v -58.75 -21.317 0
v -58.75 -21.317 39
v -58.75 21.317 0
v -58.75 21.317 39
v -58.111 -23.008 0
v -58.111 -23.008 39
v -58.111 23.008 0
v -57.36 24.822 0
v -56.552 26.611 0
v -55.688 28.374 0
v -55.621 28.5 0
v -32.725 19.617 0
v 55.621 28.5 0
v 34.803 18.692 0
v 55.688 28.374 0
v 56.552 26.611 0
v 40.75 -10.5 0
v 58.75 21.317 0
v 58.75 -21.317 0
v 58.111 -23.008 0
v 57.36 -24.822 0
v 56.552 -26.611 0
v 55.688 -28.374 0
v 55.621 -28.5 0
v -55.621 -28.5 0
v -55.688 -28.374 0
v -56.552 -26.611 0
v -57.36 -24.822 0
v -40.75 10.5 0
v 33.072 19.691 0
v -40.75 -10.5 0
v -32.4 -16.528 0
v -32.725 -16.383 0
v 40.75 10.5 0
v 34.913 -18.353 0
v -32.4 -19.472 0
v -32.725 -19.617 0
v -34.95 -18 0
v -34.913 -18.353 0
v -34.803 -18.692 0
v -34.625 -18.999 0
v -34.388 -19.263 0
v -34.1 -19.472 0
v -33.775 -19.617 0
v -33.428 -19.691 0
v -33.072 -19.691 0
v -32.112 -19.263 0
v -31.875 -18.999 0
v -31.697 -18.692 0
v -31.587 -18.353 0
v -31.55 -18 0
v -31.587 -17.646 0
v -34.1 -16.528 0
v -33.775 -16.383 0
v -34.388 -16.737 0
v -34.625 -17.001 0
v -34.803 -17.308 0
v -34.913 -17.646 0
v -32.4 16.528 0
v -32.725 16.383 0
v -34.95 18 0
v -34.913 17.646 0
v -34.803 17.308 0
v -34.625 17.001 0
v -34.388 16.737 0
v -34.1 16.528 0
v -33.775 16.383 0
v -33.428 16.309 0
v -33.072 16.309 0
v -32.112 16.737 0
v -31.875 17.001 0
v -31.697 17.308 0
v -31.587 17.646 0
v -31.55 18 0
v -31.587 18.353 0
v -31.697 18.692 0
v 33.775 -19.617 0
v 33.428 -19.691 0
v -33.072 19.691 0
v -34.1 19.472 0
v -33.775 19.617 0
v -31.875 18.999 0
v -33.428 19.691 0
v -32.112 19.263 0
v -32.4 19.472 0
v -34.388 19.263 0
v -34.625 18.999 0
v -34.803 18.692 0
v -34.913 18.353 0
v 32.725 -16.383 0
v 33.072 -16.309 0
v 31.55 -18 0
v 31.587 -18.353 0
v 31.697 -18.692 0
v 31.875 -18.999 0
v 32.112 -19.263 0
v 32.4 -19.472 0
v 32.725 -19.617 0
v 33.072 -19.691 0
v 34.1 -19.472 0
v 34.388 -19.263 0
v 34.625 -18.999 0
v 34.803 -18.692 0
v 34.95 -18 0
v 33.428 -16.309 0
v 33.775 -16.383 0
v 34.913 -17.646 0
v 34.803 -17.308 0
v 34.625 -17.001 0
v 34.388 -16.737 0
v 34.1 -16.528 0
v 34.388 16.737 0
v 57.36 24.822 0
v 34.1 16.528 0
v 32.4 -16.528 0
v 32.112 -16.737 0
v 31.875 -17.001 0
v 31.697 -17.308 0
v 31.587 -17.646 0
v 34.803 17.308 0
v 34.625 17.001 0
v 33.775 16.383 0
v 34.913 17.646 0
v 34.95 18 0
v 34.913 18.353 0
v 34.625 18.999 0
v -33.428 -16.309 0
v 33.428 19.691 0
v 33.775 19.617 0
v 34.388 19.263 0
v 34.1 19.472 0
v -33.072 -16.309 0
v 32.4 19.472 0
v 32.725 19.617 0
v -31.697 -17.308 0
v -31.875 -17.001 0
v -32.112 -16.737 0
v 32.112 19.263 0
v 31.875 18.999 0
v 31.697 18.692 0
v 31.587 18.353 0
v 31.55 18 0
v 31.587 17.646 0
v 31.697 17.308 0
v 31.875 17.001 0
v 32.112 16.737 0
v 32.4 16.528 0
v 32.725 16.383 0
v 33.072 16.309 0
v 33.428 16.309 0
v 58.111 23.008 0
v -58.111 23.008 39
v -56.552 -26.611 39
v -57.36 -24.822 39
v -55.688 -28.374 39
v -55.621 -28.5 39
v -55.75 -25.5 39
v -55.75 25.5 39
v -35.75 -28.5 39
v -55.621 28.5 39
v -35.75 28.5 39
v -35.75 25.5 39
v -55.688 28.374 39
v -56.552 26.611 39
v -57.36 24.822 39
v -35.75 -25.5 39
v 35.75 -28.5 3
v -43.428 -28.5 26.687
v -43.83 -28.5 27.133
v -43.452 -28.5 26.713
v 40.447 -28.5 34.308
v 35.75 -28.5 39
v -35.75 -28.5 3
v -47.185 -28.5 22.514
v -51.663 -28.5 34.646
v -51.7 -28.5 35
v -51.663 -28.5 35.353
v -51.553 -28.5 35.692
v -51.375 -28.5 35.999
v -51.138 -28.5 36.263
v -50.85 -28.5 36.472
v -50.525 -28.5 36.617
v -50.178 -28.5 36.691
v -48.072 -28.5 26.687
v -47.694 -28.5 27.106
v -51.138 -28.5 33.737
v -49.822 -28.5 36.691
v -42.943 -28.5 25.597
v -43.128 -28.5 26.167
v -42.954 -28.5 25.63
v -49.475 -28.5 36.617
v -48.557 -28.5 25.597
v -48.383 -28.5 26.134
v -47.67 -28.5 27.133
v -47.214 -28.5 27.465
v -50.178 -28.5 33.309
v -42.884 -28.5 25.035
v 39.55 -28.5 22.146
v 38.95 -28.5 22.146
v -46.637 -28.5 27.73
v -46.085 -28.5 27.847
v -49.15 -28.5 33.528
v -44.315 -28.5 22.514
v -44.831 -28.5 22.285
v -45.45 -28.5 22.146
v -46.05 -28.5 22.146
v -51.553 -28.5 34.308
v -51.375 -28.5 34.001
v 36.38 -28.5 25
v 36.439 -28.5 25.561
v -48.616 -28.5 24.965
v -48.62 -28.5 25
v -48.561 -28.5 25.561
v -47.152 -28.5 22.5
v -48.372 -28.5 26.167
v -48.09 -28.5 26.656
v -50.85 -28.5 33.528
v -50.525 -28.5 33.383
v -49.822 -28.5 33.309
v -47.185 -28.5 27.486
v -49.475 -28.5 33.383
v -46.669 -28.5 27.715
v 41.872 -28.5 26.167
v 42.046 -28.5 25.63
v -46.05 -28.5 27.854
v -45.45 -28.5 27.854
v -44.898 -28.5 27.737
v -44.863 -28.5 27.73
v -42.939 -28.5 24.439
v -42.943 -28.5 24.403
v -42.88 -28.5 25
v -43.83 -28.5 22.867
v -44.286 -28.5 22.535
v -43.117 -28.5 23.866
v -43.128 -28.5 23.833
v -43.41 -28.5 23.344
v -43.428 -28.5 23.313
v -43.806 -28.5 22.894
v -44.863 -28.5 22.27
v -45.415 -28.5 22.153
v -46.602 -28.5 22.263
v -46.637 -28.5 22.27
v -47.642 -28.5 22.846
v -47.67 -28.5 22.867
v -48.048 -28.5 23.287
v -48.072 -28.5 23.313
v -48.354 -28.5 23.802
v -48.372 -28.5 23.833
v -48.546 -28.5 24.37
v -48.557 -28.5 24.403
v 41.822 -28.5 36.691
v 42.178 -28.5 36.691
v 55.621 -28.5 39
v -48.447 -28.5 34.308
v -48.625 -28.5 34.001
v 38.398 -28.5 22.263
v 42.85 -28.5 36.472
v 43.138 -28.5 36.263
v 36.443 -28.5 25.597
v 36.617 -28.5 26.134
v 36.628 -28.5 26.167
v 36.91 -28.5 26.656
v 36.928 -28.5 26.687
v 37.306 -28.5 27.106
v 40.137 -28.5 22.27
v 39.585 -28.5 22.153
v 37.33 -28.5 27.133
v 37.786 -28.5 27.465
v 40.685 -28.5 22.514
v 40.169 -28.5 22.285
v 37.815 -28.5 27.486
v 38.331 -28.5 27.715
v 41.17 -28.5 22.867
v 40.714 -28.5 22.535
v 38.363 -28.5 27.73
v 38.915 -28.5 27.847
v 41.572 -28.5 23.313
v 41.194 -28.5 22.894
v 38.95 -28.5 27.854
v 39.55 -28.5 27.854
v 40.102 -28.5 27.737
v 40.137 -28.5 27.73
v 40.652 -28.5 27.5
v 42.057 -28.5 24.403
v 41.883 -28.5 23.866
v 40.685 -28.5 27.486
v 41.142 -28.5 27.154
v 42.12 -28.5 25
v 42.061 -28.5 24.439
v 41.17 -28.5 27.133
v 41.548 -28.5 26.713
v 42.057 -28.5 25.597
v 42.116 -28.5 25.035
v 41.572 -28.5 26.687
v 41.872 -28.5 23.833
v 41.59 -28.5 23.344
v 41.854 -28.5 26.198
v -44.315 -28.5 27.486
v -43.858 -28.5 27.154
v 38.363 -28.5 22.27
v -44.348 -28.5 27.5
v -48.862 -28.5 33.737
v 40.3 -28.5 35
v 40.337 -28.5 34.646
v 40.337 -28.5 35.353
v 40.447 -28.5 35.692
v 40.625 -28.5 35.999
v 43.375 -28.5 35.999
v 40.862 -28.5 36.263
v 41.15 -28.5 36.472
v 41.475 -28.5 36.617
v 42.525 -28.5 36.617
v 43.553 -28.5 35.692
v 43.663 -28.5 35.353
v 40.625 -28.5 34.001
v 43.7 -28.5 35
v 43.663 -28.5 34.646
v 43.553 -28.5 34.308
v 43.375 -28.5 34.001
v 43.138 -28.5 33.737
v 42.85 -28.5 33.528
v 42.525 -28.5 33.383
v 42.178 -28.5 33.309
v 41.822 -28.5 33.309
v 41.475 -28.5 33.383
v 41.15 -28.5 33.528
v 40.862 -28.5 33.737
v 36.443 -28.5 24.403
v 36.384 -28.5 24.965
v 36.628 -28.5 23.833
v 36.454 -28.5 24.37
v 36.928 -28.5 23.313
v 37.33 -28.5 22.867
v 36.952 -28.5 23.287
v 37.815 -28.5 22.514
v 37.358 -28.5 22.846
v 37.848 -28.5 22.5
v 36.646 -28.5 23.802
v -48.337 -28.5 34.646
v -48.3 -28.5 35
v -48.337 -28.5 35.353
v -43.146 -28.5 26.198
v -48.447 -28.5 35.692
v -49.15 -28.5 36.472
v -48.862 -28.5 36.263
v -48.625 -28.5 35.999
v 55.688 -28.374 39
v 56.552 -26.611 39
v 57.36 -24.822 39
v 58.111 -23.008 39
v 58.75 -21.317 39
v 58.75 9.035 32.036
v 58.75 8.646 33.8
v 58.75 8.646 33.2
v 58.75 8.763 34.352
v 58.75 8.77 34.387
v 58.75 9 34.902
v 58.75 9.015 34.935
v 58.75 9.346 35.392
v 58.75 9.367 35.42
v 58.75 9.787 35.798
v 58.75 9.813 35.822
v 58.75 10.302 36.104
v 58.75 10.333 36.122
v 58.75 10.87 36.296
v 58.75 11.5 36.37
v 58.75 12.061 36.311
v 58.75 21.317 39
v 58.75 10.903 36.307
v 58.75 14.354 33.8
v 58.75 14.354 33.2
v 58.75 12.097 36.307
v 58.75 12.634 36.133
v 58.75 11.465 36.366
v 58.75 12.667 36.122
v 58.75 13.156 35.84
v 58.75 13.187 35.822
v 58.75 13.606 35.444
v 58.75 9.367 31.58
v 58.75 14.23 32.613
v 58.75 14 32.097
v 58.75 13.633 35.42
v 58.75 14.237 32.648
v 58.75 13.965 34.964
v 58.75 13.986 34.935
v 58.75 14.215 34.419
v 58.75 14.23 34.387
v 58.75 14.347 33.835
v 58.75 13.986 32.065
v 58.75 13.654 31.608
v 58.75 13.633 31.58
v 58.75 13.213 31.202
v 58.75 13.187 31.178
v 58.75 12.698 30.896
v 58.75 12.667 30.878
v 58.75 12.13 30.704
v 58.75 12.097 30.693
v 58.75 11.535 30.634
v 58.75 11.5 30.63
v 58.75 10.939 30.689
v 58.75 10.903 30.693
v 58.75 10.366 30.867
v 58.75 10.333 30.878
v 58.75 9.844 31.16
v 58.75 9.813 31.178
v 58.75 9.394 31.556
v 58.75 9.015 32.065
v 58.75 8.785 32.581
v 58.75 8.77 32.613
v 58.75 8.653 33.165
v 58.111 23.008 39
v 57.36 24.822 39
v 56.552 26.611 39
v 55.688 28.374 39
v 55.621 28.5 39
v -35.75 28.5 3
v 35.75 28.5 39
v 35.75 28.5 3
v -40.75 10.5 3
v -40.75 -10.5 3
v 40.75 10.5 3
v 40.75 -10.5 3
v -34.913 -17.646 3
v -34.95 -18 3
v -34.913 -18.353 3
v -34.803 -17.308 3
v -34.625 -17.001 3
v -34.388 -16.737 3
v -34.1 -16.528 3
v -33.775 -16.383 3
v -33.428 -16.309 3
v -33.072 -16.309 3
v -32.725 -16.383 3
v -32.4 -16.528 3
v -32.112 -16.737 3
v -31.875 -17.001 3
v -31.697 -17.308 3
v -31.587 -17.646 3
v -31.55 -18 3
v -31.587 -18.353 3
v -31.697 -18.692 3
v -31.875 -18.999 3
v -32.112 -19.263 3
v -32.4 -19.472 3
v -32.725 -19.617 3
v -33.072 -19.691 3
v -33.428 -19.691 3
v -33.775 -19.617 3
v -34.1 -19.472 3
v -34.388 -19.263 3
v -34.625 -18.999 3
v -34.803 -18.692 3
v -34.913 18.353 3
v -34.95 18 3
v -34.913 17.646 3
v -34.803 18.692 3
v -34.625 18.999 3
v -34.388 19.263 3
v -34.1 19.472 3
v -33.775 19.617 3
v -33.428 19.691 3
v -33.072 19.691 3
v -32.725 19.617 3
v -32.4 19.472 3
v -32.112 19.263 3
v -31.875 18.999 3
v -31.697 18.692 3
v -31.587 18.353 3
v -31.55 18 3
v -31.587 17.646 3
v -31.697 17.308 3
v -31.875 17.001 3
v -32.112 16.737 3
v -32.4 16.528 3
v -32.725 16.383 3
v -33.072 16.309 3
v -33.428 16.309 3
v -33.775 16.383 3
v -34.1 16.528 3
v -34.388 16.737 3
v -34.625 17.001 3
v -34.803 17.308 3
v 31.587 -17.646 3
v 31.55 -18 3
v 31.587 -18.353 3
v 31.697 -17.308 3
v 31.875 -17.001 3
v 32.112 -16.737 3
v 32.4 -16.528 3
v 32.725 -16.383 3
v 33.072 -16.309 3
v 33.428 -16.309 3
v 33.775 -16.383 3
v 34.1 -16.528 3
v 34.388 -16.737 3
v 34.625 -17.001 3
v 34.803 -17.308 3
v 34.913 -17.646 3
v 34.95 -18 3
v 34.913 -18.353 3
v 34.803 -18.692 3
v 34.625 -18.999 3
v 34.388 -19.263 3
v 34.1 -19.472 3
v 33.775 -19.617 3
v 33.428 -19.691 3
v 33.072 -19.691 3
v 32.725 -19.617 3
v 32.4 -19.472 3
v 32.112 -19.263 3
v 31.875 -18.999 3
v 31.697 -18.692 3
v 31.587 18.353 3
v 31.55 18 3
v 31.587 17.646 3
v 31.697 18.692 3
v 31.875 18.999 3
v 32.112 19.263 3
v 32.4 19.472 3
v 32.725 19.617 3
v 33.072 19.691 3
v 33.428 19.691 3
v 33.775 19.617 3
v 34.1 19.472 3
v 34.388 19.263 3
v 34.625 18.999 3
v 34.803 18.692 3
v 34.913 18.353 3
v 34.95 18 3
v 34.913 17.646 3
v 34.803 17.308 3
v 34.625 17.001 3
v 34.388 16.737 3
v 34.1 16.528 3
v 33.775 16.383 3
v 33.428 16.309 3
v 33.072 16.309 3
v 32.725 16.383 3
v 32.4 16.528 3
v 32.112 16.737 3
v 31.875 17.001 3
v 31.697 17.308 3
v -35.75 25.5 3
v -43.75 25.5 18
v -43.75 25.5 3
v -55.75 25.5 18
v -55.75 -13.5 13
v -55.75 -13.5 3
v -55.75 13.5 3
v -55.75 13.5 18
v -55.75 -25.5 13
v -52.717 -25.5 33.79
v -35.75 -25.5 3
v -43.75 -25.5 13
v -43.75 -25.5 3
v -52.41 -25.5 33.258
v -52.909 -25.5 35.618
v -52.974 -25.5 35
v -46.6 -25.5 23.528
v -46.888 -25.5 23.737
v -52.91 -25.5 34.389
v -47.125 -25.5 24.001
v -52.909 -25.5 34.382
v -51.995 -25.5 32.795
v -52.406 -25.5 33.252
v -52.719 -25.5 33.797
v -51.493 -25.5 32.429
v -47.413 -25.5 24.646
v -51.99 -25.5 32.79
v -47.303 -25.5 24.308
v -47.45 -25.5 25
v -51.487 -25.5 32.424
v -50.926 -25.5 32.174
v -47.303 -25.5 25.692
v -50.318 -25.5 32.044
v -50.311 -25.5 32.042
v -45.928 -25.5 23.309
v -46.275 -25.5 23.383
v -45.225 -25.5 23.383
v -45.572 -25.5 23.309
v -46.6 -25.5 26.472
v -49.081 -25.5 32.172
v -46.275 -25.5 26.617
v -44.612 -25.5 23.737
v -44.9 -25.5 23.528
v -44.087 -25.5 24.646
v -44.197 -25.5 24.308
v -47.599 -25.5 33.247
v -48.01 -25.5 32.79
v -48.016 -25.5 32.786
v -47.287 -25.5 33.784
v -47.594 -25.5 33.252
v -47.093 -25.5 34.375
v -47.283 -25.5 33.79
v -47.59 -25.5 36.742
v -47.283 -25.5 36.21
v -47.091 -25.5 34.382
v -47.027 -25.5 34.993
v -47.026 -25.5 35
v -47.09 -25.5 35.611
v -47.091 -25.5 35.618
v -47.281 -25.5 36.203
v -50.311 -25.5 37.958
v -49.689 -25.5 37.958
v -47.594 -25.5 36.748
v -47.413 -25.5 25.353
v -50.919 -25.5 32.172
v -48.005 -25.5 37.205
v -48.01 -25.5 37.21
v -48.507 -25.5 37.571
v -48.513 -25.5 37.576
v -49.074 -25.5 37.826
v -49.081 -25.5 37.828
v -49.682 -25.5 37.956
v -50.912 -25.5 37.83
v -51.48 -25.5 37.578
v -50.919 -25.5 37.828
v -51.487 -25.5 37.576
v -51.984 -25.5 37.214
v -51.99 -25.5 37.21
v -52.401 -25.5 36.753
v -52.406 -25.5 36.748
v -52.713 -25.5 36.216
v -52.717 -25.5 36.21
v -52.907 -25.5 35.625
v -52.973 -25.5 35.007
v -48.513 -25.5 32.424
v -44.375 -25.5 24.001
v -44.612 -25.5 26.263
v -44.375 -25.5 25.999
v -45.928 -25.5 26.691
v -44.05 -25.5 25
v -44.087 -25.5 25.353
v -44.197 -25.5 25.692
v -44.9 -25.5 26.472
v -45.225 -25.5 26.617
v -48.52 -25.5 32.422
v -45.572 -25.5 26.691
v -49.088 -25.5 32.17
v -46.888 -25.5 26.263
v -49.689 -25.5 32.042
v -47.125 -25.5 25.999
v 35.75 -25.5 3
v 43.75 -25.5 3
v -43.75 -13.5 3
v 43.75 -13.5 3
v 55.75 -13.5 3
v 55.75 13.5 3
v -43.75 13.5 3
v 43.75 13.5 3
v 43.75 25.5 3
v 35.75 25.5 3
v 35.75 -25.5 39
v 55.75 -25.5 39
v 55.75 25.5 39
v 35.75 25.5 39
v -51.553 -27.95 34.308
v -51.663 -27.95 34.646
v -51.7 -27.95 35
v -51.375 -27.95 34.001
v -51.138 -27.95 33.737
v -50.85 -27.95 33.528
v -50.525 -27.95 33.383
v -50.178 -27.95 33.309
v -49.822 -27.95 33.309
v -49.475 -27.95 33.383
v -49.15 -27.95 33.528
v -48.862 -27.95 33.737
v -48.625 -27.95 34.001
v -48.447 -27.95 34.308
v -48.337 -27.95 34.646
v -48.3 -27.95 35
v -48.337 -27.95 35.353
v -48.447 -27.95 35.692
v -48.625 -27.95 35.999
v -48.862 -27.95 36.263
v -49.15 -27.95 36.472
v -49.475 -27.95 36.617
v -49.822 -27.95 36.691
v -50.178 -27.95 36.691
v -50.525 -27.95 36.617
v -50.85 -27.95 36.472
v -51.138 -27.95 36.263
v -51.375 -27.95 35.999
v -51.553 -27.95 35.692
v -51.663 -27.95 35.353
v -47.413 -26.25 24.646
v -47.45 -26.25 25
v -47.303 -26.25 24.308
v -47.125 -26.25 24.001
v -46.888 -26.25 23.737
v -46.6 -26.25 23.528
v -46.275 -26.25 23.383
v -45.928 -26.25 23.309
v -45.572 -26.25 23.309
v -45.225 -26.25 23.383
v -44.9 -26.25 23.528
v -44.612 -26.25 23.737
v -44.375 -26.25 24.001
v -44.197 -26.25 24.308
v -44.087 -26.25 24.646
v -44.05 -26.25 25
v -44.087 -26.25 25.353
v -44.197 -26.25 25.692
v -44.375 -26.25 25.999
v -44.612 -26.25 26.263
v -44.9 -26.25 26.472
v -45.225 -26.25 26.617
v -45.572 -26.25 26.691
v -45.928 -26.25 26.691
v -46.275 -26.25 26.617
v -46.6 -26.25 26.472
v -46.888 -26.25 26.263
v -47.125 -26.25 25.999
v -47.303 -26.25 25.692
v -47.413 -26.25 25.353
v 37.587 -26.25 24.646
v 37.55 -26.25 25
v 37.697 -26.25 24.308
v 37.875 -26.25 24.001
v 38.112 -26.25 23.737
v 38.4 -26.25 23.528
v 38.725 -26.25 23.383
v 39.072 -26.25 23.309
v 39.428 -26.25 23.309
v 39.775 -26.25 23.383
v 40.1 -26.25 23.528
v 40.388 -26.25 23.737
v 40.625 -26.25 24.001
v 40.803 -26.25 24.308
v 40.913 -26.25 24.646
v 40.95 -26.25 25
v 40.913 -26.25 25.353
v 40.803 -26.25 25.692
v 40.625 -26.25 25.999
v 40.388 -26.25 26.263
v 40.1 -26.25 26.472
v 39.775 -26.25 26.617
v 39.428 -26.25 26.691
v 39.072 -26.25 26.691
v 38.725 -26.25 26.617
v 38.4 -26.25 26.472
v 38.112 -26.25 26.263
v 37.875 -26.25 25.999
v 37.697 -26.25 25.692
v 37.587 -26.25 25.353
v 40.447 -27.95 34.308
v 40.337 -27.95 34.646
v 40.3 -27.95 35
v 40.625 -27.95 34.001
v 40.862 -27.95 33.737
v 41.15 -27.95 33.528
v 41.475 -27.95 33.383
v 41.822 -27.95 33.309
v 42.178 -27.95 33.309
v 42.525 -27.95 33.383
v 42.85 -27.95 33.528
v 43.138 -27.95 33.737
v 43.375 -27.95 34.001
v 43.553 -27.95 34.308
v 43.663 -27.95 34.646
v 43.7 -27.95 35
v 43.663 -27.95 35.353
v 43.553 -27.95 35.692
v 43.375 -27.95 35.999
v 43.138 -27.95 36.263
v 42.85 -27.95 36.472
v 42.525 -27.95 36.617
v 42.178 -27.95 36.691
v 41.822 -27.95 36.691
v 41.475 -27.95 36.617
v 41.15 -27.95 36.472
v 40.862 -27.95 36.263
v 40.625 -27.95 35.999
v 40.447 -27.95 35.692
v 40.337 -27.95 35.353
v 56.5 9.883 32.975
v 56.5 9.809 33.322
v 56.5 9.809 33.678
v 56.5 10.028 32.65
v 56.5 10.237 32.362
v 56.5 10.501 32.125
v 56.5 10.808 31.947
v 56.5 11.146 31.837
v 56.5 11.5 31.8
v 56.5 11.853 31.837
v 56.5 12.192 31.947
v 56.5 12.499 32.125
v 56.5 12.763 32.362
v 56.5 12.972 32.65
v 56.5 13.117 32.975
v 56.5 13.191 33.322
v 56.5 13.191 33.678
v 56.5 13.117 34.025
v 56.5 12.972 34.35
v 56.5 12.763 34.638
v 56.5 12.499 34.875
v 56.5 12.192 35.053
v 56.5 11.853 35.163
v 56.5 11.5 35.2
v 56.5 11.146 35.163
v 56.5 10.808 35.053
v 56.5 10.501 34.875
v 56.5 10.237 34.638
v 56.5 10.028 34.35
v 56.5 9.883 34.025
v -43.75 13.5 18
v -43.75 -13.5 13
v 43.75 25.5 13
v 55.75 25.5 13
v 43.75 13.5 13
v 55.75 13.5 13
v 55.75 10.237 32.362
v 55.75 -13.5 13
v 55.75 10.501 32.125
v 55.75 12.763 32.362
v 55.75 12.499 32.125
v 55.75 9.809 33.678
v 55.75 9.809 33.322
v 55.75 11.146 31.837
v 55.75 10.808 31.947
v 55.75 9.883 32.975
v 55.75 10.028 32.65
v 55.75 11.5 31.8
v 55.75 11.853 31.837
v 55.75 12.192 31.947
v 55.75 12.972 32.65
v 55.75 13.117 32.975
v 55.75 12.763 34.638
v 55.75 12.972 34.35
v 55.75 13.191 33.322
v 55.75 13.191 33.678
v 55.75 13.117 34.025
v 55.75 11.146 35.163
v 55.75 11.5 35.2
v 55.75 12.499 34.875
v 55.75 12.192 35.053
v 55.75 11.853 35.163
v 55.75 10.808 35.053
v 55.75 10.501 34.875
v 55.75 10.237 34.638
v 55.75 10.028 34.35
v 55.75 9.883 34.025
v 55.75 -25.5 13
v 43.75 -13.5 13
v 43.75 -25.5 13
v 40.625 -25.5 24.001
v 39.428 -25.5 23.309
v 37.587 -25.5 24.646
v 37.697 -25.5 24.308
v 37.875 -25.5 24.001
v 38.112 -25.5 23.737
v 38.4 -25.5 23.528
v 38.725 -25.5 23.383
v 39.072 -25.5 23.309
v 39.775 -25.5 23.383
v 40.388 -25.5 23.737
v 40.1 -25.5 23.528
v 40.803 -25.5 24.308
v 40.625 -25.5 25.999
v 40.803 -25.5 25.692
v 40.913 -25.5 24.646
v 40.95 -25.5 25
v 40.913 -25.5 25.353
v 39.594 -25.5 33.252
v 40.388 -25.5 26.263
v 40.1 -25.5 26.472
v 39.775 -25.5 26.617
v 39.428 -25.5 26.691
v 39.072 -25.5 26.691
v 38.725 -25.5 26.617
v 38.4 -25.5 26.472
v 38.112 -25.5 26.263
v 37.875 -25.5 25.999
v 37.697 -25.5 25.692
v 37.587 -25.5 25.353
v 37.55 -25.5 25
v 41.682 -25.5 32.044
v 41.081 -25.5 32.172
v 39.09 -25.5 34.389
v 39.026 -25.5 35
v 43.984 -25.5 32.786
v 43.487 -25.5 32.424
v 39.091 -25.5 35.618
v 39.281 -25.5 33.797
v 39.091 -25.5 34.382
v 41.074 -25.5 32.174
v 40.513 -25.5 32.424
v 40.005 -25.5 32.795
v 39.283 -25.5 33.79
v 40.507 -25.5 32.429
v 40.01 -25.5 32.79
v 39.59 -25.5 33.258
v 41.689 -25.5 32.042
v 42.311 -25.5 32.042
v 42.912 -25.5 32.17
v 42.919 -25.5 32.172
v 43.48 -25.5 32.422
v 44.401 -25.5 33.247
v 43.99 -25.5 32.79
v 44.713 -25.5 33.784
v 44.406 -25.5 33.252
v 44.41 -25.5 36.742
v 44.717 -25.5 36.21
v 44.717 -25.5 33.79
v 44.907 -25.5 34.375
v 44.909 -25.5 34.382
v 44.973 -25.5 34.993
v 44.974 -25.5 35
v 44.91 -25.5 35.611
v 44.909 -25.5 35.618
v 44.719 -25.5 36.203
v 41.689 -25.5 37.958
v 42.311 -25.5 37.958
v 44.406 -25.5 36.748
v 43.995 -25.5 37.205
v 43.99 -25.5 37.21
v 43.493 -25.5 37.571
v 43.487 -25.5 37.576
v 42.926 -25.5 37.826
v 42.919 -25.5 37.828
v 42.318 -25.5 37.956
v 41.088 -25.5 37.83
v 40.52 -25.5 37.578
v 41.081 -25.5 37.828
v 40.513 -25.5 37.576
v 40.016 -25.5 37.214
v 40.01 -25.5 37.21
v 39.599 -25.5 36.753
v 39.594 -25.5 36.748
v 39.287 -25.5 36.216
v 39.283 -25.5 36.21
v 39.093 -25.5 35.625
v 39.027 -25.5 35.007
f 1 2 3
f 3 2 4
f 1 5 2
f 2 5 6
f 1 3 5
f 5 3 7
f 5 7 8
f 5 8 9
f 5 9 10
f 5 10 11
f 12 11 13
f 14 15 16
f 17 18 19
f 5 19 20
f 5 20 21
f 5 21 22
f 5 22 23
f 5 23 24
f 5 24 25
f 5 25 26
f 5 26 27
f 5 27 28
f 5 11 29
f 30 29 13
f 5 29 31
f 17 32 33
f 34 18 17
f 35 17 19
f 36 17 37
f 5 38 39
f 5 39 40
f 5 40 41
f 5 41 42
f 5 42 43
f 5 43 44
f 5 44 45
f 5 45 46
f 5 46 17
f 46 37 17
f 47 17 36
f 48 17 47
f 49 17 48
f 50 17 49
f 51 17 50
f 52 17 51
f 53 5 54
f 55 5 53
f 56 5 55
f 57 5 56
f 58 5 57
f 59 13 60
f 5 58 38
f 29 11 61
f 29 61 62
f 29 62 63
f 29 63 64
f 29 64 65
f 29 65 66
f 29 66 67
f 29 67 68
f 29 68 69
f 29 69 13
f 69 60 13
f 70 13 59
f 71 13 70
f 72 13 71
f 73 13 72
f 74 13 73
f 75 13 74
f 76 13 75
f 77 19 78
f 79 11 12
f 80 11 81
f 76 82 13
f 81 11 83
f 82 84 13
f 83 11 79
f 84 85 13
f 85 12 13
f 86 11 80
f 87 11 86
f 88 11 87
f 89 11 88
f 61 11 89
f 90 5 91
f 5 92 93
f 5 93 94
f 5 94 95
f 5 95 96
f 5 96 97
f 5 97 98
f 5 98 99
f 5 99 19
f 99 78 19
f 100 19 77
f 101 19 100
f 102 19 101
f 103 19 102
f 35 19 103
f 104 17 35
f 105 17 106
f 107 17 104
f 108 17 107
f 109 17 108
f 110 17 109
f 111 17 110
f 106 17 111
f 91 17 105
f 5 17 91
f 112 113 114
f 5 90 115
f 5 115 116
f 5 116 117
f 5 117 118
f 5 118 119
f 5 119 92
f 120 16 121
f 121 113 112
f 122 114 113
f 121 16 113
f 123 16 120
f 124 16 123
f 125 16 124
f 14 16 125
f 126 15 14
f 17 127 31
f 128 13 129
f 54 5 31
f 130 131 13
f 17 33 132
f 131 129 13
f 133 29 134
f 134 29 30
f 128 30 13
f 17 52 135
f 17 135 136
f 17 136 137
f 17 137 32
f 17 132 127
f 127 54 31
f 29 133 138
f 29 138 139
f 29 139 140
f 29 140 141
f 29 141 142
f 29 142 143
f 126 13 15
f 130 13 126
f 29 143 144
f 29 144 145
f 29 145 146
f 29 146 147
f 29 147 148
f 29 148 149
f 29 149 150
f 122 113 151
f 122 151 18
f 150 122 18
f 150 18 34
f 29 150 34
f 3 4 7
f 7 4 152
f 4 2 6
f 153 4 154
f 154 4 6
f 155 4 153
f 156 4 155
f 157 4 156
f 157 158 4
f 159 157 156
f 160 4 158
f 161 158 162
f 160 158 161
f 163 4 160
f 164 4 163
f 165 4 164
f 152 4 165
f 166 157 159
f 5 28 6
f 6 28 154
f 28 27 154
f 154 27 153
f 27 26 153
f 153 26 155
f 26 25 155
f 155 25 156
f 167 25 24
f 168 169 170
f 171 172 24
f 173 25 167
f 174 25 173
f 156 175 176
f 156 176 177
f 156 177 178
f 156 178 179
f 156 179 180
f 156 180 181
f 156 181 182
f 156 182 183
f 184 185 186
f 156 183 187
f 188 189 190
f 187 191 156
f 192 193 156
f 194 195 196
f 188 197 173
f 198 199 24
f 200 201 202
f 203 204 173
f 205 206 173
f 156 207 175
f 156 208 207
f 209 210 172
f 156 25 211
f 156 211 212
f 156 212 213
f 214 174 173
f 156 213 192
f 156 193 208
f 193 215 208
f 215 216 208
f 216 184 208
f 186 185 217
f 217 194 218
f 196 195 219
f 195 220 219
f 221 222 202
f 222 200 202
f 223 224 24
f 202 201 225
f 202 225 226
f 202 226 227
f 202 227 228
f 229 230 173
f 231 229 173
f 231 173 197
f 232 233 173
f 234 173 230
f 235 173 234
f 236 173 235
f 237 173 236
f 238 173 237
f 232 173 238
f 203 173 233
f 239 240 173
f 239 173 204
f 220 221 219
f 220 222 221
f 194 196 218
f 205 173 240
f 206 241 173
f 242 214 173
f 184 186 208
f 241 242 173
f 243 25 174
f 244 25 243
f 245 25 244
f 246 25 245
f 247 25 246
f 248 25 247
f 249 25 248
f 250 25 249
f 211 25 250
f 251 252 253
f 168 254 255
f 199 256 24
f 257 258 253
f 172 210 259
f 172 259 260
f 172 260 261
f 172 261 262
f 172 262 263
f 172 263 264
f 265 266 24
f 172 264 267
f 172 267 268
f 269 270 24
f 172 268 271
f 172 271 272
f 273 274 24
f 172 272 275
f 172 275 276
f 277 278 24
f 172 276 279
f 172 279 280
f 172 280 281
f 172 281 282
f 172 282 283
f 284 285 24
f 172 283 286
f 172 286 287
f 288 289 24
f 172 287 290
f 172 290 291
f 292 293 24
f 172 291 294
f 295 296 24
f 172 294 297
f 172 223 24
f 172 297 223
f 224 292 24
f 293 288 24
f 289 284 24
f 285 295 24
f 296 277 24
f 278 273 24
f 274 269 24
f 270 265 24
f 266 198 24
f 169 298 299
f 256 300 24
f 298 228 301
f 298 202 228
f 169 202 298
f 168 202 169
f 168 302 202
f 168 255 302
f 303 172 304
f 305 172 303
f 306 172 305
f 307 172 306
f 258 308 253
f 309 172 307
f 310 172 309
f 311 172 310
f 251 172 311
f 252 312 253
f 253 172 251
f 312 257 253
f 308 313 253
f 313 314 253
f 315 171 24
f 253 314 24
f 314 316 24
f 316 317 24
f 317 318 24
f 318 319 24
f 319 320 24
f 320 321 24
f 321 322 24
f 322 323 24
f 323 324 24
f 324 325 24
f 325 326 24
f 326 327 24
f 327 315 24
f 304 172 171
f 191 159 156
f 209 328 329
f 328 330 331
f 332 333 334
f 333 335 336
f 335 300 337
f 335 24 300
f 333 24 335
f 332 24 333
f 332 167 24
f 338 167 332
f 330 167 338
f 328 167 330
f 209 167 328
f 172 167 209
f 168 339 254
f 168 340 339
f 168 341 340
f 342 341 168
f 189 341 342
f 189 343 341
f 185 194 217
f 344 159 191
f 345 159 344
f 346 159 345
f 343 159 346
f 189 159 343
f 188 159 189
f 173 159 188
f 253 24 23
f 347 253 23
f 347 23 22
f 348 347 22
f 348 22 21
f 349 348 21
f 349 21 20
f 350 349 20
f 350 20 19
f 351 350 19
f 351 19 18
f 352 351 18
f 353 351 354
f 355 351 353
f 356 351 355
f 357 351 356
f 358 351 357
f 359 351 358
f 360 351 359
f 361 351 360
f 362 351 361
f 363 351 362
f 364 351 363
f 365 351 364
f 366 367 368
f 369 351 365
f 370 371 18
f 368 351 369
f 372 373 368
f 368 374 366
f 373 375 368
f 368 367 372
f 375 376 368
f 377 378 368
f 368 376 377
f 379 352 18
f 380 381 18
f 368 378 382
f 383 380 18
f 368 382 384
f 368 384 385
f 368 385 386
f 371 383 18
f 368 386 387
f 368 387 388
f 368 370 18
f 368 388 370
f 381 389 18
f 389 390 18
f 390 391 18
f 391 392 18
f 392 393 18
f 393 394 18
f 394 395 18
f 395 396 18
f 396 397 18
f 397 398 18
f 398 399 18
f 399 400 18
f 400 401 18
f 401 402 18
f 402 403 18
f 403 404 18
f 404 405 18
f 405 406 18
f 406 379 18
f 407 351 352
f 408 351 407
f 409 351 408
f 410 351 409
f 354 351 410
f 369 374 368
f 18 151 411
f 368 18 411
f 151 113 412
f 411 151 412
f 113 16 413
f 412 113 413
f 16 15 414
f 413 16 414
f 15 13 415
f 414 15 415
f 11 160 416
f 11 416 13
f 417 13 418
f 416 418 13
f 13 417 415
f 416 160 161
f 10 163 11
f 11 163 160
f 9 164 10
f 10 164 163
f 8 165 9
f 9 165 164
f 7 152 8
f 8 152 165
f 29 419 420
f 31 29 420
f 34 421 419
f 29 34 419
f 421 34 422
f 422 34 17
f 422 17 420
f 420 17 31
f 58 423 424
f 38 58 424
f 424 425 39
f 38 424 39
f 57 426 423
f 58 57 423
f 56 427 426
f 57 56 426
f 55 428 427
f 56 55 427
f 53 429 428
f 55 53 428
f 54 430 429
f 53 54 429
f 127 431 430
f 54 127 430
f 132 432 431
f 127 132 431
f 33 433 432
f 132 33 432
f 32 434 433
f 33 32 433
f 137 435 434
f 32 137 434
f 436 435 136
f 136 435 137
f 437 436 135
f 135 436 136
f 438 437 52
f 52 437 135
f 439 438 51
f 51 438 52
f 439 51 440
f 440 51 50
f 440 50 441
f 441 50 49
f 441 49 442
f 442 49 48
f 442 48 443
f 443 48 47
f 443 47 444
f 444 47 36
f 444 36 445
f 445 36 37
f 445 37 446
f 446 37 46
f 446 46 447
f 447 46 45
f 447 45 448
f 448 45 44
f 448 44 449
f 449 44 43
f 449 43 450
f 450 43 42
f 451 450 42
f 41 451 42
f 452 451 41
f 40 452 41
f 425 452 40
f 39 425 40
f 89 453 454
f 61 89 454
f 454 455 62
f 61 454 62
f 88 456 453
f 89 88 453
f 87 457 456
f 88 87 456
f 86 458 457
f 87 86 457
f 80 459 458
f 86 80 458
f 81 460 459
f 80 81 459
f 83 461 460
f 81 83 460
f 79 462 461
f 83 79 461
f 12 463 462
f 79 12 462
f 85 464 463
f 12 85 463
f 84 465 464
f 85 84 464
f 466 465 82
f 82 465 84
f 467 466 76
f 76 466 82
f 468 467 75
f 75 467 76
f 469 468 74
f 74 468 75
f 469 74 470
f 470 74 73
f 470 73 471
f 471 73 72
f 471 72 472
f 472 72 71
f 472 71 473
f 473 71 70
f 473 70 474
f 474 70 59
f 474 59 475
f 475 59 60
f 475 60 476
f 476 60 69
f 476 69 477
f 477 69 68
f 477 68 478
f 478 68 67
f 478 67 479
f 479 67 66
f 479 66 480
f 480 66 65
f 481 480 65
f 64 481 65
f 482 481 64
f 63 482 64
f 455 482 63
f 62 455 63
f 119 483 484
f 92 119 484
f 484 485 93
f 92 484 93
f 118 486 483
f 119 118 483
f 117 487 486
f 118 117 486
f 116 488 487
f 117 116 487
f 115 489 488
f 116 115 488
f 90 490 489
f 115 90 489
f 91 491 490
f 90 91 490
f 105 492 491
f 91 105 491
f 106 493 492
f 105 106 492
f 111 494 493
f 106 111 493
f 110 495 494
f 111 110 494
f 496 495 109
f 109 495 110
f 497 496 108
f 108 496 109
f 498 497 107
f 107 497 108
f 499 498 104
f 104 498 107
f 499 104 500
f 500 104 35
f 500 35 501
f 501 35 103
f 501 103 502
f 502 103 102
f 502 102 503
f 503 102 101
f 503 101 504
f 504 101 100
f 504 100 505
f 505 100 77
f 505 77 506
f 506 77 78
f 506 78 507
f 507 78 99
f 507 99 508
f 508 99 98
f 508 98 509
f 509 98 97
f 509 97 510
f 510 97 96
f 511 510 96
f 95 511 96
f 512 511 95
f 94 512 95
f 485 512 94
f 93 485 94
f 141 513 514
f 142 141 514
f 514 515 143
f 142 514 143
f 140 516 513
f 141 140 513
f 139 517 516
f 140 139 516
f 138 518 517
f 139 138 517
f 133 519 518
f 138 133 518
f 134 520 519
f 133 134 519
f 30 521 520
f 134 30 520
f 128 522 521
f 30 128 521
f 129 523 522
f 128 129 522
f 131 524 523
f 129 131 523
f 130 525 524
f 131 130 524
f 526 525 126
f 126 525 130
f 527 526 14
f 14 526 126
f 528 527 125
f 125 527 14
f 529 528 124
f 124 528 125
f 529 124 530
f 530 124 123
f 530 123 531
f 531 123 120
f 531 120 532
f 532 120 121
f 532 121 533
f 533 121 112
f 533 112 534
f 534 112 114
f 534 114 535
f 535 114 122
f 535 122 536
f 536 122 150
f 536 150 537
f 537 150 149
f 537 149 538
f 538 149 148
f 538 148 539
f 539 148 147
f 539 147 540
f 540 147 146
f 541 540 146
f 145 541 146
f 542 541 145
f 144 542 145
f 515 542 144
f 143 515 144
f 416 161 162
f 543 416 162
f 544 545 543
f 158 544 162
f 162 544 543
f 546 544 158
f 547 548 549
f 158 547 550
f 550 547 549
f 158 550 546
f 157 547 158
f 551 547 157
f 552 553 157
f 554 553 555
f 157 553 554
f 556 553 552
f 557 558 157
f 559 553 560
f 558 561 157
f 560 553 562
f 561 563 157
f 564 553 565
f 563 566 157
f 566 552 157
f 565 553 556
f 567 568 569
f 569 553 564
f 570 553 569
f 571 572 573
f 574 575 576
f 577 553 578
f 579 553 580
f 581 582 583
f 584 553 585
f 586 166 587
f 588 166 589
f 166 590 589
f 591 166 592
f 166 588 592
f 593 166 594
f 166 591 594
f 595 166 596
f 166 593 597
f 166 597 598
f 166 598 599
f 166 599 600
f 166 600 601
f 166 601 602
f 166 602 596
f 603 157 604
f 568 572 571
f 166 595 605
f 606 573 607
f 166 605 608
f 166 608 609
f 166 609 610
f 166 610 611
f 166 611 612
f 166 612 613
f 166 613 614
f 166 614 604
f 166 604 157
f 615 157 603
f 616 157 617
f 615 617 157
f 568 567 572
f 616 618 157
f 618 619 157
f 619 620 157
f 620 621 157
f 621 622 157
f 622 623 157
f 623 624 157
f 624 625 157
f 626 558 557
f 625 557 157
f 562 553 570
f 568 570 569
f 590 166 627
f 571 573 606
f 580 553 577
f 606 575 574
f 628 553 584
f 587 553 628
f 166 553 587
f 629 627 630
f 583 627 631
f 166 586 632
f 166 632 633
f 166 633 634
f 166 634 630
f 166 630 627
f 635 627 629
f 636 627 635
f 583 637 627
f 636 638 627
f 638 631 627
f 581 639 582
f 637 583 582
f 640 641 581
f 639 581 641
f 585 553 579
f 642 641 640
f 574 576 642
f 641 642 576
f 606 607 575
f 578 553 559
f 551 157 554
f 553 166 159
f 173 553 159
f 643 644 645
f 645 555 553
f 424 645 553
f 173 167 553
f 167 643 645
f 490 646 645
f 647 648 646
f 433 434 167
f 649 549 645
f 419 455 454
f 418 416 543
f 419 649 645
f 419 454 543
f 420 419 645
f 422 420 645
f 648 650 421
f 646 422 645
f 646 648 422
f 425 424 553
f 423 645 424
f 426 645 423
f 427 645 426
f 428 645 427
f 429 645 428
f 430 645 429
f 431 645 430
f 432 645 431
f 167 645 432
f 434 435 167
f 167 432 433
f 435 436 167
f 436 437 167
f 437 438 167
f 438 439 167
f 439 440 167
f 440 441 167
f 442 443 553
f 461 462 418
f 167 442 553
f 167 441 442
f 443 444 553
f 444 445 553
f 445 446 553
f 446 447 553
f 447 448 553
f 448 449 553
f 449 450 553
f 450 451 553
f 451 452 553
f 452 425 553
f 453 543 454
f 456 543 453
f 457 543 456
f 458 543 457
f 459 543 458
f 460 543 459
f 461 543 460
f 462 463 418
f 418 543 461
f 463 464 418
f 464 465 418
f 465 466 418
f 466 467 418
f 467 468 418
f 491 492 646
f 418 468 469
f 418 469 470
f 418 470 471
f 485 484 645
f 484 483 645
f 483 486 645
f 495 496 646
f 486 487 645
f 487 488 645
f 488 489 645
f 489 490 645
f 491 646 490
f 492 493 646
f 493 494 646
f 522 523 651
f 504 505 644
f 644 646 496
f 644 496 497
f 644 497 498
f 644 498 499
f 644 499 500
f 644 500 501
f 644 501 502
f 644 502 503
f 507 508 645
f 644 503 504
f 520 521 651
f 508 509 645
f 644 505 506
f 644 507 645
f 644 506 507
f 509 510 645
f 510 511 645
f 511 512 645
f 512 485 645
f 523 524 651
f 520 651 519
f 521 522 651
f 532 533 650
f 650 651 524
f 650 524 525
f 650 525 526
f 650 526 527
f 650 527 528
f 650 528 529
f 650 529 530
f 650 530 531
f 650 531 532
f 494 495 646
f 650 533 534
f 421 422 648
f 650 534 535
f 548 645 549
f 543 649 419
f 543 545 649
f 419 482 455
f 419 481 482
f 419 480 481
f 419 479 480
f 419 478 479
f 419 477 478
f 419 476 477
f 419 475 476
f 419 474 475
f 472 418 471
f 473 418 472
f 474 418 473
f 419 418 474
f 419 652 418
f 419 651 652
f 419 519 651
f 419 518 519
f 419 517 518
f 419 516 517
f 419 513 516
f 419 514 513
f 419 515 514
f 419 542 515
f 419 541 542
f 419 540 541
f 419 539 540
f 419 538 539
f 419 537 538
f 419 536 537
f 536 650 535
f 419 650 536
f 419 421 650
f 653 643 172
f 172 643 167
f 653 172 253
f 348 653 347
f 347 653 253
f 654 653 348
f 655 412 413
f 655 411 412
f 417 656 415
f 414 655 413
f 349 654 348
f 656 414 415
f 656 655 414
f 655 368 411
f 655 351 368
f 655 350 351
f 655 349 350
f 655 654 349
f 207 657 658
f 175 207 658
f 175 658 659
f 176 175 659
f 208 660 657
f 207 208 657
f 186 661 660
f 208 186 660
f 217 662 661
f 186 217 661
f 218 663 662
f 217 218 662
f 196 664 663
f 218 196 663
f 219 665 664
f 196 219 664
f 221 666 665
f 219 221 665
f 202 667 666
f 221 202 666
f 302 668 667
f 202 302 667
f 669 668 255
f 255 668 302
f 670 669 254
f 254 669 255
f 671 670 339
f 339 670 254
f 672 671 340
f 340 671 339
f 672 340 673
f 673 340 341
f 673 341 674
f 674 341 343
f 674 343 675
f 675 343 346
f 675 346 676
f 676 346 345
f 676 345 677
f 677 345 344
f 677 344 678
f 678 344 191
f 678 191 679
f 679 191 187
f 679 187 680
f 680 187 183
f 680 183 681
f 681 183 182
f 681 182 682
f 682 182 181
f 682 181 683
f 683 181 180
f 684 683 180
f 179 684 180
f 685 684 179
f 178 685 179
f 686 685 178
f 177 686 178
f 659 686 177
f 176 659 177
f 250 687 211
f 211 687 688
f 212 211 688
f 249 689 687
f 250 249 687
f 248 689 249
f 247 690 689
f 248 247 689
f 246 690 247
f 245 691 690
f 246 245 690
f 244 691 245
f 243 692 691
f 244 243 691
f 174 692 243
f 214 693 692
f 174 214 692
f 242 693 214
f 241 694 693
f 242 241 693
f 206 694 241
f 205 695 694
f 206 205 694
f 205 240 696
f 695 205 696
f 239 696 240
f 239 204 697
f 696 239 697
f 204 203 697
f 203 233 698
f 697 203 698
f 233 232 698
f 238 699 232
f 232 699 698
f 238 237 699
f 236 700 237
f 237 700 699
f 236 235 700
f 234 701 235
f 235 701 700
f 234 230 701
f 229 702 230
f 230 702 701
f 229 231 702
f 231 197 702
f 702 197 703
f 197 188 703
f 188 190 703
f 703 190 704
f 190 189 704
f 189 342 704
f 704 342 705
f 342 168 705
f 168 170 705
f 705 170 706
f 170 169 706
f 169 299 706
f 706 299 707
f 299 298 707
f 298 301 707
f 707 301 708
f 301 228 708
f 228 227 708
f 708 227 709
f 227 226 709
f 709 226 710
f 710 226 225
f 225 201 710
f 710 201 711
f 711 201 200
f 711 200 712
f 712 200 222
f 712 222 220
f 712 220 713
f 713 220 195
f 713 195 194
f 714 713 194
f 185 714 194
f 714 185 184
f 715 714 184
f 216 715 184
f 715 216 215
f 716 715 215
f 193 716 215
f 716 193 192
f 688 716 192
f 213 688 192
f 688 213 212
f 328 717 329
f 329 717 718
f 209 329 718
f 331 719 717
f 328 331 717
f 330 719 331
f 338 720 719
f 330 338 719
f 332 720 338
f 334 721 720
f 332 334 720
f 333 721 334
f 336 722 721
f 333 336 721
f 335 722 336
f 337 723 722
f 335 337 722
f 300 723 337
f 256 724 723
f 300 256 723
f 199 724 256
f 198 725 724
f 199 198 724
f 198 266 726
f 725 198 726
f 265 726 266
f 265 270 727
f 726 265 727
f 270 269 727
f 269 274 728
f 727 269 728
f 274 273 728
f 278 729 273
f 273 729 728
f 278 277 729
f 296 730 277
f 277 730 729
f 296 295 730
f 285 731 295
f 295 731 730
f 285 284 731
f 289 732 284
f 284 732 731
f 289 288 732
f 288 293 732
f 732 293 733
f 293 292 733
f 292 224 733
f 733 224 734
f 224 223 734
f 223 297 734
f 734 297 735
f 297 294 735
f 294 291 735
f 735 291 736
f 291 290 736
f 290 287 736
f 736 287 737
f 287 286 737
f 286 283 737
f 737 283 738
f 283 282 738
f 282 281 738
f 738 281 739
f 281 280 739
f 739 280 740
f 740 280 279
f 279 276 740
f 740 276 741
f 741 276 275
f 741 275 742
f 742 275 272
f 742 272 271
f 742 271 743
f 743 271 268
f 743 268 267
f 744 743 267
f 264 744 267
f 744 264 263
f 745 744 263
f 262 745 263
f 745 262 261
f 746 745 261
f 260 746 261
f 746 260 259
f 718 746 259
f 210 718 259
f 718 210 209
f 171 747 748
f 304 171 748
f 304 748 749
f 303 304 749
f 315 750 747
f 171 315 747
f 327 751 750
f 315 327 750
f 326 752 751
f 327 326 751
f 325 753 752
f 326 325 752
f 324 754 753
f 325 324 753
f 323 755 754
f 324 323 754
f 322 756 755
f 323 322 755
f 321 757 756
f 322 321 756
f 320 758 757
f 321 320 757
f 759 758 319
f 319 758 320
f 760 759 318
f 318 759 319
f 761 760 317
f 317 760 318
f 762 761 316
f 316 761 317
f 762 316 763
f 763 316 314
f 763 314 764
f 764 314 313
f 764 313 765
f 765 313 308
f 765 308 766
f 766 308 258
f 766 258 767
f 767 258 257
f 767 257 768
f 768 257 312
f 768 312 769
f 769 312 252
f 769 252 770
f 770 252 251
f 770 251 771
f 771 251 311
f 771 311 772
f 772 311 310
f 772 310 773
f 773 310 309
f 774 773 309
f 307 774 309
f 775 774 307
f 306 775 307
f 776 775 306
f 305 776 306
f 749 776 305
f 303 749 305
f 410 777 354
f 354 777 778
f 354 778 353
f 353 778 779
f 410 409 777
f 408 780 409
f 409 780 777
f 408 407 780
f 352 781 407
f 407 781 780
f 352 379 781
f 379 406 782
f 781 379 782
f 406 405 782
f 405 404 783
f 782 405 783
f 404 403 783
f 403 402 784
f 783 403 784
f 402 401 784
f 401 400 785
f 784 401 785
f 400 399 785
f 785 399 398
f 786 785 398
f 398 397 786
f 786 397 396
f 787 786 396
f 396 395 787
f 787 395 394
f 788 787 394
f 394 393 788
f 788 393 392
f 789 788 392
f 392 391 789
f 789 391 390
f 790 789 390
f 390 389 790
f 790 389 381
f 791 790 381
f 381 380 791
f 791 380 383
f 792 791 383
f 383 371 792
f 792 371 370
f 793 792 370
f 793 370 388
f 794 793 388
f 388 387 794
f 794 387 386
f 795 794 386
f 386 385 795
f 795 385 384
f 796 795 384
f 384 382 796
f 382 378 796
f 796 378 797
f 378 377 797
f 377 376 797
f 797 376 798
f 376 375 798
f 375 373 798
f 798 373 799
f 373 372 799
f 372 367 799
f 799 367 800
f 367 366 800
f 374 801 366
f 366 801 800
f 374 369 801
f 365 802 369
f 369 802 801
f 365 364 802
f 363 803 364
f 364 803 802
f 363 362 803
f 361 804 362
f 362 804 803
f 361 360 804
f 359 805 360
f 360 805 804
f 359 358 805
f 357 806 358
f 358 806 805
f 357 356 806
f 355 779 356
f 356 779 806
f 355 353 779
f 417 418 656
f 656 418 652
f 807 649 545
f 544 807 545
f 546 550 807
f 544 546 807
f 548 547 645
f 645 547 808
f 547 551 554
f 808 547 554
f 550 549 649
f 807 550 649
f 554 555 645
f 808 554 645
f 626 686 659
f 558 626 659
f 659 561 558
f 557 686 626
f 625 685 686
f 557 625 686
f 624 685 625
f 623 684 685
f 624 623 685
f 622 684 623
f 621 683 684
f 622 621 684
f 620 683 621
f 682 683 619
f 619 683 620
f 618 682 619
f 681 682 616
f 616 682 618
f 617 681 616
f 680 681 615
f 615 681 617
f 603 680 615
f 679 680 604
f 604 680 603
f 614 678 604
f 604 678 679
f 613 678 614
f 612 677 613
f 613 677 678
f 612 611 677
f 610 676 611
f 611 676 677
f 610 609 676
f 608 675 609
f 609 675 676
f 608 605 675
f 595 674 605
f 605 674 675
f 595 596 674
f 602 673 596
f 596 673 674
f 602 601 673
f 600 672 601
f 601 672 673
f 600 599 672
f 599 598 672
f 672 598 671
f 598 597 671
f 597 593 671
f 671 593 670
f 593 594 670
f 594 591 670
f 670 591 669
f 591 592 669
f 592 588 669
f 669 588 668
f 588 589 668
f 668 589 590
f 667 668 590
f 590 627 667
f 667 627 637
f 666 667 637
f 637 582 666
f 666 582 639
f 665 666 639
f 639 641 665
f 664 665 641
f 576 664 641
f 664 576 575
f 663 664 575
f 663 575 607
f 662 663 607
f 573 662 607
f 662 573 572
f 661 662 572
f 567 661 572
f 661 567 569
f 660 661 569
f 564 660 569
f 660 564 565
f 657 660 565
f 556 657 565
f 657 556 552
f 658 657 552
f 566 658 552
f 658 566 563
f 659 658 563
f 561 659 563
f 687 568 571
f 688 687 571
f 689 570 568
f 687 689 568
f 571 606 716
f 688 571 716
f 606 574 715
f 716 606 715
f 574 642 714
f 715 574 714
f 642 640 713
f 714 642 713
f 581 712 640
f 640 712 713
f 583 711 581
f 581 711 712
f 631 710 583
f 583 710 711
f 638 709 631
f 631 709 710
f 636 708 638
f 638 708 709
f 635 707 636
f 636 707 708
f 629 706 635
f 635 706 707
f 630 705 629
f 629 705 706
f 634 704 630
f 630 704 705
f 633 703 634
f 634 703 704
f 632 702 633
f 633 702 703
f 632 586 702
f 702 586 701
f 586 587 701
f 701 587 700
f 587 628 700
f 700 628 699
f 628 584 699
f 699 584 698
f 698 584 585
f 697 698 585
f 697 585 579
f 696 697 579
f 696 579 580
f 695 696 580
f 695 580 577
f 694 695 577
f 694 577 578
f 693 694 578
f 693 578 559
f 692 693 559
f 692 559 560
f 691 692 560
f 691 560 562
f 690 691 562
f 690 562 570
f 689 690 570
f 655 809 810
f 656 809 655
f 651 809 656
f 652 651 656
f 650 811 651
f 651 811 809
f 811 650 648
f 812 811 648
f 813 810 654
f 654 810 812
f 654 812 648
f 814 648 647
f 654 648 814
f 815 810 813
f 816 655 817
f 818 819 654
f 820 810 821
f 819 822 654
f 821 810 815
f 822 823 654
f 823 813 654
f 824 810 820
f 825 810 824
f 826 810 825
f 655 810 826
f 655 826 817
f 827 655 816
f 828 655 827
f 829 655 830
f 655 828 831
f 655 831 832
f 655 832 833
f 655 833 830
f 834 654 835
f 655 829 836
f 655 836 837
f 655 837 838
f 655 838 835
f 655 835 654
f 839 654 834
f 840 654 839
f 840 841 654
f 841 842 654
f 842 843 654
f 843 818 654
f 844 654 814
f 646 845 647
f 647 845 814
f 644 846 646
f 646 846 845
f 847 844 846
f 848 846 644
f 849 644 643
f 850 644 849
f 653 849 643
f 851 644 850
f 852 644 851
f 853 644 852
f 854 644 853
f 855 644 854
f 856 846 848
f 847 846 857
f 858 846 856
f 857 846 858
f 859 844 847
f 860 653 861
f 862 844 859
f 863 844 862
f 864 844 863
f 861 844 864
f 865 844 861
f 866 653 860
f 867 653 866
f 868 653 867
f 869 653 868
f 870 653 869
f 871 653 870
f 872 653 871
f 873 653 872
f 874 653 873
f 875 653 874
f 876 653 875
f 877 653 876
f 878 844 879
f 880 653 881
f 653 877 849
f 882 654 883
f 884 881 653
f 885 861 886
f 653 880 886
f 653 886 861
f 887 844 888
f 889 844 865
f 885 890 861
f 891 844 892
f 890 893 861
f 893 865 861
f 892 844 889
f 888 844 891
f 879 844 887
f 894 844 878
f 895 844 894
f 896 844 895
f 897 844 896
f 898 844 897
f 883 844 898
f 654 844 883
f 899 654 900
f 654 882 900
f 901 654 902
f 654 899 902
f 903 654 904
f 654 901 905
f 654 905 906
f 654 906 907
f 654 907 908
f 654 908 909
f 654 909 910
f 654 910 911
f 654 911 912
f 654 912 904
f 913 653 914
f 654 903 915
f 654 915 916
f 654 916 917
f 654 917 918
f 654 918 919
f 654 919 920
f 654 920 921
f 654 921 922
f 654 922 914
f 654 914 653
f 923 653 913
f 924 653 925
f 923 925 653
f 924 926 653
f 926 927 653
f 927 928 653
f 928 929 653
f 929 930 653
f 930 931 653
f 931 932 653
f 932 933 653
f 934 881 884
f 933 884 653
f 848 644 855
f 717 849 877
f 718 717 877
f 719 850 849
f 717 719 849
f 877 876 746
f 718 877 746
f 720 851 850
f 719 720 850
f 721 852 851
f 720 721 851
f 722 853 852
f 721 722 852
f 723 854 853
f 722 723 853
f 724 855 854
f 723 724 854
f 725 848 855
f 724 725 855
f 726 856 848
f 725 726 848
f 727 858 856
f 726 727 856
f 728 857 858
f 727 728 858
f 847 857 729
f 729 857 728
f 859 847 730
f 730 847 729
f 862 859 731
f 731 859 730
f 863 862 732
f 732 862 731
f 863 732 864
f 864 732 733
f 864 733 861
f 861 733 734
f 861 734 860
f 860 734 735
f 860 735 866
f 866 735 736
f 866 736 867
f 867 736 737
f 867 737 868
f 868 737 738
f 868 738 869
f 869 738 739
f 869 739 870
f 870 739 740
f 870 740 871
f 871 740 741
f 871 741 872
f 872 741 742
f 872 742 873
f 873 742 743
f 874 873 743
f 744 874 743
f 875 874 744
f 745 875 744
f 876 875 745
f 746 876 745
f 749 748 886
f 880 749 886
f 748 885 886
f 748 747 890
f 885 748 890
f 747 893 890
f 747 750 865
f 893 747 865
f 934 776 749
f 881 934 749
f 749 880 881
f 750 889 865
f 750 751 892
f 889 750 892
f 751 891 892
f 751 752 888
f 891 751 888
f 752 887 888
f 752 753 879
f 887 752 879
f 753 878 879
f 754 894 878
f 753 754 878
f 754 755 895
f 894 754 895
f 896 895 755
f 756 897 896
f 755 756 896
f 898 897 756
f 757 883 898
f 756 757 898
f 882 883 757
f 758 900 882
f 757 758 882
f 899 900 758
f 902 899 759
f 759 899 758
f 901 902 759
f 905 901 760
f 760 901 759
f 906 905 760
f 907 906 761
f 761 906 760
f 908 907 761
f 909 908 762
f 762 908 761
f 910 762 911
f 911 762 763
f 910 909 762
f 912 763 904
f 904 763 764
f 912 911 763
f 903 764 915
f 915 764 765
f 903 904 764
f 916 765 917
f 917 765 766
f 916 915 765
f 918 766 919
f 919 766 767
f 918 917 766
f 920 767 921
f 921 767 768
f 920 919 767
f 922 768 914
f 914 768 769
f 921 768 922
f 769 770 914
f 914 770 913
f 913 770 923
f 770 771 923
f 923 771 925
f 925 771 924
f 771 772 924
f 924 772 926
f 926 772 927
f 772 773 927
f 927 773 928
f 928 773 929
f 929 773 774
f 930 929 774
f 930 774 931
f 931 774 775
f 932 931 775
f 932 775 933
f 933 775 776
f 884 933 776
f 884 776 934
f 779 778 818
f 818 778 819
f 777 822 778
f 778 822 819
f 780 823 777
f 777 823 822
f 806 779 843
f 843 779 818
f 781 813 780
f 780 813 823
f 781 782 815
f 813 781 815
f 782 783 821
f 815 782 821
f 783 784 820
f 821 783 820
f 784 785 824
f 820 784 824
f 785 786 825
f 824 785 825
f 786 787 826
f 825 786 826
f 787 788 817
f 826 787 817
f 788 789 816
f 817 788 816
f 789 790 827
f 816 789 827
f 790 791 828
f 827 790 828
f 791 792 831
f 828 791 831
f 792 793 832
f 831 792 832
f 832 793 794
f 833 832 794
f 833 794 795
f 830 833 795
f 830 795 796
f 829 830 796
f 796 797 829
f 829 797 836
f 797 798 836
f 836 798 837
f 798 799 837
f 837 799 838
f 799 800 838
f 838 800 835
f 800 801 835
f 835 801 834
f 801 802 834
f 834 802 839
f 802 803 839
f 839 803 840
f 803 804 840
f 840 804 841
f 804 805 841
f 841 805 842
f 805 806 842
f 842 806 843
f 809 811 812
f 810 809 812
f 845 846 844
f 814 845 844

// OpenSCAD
/*
  Vertical mounting for 20A 12V PSU.

	Adrian

	3 February 2014

*/

PSSupport(topClip=false);

//*******************************************************************

PSx = 111.5;
PSy = 51;

BaseZ=3;
liftZ=10;
shim = 5;
cornerSize=45;
tubeD=125;
PSYOffset=0;

XMountHole1=10;
XMountHole2=95;
ZMountHole12=12 + liftZ;
YMountHole3=37;
ZMountHole3=20.5 + liftZ;

height = ZMountHole3 + BaseZ + 5.5;
drop = height - BaseZ;

DuetHoleDX=92;
DuetHoleZ=22+liftZ;
DuetHoleX=-4;


module PSSupport(topClip=false)
{
	intersection()
	{
		intersection()
		{
			difference()
			{
				translate([0,0,0.5*height])
					cube([PSx+6, PSy+6, height], center=true);
		
				translate([0,0,BaseZ+0.5*height])
				{
					union()
					{
						difference()
						{
							cube([PSx, PSy, height], center=true);
							for(x=[0,1])for(y=[0,1])
							translate([-(2*x-1)*(PSx+6)/2, (2*y-1)*(PSy+6)/2,
								-height/2 + x*y*shim - shim])
									cube([30, 30, 2*(liftZ+shim)], center=true);
						}
						if(!topClip)
							cube([PSx-40, PSy+20, height], center=true);
					}
				}
				cube([PSx-30, PSy-30, 4*height], center=true);
				for(x=[-1,1])for(y=[-1,1])
					translate([x*(PSx-45)/2,y*(PSy-15)/2,0])
						cylinder(r=1.7,h=4*height,center=true,$fn=30);
		
				// Mounting hole centres
				echo((PSx-45));
				echo((PSy-15));
		
				DuetHoles();

				if(!topClip)
					HorizontalMountHoles();			
			}
			translate([0,PSYOffset,0])
				cylinder(r=tubeD/2,h=500,center=true,$fn=200);
		}

		if(topClip)
		{
			translate([0,0,DuetHoleZ+5])
				cube([PSx*2, PSy*2, 12], center=true);
		}
	}
}


module HorizontalMountHoles()
{
	union()
	{
	translate([-PSx/2+XMountHole1,-PSy/2,BaseZ+ZMountHole12])
		rotate([90,0,0])
		{
			cylinder(r=1.7,h=10,center=true,$fn=30);
			translate([0,0,2])
				cylinder(r1=1.7, r2=6/2 ,h=2.5,center=true,$fn=30);
		}
	translate([-PSx/2+XMountHole2,-PSy/2,BaseZ+ZMountHole12])
		rotate([90,0,0])
		{
			cylinder(r=1.7,h=12,center=true,$fn=30);
			translate([0,0,2])
				cylinder(r1=1.7, r2=6/2 ,h=2.5,center=true,$fn=30);
		}
	translate([PSx/2,-PSy/2+YMountHole3,BaseZ+ZMountHole3])
		rotate([0,90,0])
		{
			cylinder(r=1.7,h=12,center=true,$fn=30);
			translate([0,0,2])
				cylinder(r1=1.7, r2=6/2 ,h=2.5,center=true,$fn=30);
		}
	}
}


module DuetHoles()
{
	union()
	{
		translate([-DuetHoleDX/2+DuetHoleX,-PSy/2,BaseZ+DuetHoleZ])
		{
			rotate([90,0,0])
				cylinder(r=1.7,h=10,center=true,$fn=30);
			rotate([90,0,0])
				translate([0,0,1.2])
					cylinder(r2=1.7, r1=6/2 ,h=2.5,center=true,$fn=30);			
		}
		translate([DuetHoleDX/2+DuetHoleX,-PSy/2,BaseZ+DuetHoleZ])
		{
			rotate([90,0,0])
				cylinder(r=1.7,h=12,center=true,$fn=30);
			rotate([90,0,0])
				translate([0,0,1.2])
					cylinder(r2=1.7, r1=6/2 ,h=2.5,center=true,$fn=30);
		}
	}
}
